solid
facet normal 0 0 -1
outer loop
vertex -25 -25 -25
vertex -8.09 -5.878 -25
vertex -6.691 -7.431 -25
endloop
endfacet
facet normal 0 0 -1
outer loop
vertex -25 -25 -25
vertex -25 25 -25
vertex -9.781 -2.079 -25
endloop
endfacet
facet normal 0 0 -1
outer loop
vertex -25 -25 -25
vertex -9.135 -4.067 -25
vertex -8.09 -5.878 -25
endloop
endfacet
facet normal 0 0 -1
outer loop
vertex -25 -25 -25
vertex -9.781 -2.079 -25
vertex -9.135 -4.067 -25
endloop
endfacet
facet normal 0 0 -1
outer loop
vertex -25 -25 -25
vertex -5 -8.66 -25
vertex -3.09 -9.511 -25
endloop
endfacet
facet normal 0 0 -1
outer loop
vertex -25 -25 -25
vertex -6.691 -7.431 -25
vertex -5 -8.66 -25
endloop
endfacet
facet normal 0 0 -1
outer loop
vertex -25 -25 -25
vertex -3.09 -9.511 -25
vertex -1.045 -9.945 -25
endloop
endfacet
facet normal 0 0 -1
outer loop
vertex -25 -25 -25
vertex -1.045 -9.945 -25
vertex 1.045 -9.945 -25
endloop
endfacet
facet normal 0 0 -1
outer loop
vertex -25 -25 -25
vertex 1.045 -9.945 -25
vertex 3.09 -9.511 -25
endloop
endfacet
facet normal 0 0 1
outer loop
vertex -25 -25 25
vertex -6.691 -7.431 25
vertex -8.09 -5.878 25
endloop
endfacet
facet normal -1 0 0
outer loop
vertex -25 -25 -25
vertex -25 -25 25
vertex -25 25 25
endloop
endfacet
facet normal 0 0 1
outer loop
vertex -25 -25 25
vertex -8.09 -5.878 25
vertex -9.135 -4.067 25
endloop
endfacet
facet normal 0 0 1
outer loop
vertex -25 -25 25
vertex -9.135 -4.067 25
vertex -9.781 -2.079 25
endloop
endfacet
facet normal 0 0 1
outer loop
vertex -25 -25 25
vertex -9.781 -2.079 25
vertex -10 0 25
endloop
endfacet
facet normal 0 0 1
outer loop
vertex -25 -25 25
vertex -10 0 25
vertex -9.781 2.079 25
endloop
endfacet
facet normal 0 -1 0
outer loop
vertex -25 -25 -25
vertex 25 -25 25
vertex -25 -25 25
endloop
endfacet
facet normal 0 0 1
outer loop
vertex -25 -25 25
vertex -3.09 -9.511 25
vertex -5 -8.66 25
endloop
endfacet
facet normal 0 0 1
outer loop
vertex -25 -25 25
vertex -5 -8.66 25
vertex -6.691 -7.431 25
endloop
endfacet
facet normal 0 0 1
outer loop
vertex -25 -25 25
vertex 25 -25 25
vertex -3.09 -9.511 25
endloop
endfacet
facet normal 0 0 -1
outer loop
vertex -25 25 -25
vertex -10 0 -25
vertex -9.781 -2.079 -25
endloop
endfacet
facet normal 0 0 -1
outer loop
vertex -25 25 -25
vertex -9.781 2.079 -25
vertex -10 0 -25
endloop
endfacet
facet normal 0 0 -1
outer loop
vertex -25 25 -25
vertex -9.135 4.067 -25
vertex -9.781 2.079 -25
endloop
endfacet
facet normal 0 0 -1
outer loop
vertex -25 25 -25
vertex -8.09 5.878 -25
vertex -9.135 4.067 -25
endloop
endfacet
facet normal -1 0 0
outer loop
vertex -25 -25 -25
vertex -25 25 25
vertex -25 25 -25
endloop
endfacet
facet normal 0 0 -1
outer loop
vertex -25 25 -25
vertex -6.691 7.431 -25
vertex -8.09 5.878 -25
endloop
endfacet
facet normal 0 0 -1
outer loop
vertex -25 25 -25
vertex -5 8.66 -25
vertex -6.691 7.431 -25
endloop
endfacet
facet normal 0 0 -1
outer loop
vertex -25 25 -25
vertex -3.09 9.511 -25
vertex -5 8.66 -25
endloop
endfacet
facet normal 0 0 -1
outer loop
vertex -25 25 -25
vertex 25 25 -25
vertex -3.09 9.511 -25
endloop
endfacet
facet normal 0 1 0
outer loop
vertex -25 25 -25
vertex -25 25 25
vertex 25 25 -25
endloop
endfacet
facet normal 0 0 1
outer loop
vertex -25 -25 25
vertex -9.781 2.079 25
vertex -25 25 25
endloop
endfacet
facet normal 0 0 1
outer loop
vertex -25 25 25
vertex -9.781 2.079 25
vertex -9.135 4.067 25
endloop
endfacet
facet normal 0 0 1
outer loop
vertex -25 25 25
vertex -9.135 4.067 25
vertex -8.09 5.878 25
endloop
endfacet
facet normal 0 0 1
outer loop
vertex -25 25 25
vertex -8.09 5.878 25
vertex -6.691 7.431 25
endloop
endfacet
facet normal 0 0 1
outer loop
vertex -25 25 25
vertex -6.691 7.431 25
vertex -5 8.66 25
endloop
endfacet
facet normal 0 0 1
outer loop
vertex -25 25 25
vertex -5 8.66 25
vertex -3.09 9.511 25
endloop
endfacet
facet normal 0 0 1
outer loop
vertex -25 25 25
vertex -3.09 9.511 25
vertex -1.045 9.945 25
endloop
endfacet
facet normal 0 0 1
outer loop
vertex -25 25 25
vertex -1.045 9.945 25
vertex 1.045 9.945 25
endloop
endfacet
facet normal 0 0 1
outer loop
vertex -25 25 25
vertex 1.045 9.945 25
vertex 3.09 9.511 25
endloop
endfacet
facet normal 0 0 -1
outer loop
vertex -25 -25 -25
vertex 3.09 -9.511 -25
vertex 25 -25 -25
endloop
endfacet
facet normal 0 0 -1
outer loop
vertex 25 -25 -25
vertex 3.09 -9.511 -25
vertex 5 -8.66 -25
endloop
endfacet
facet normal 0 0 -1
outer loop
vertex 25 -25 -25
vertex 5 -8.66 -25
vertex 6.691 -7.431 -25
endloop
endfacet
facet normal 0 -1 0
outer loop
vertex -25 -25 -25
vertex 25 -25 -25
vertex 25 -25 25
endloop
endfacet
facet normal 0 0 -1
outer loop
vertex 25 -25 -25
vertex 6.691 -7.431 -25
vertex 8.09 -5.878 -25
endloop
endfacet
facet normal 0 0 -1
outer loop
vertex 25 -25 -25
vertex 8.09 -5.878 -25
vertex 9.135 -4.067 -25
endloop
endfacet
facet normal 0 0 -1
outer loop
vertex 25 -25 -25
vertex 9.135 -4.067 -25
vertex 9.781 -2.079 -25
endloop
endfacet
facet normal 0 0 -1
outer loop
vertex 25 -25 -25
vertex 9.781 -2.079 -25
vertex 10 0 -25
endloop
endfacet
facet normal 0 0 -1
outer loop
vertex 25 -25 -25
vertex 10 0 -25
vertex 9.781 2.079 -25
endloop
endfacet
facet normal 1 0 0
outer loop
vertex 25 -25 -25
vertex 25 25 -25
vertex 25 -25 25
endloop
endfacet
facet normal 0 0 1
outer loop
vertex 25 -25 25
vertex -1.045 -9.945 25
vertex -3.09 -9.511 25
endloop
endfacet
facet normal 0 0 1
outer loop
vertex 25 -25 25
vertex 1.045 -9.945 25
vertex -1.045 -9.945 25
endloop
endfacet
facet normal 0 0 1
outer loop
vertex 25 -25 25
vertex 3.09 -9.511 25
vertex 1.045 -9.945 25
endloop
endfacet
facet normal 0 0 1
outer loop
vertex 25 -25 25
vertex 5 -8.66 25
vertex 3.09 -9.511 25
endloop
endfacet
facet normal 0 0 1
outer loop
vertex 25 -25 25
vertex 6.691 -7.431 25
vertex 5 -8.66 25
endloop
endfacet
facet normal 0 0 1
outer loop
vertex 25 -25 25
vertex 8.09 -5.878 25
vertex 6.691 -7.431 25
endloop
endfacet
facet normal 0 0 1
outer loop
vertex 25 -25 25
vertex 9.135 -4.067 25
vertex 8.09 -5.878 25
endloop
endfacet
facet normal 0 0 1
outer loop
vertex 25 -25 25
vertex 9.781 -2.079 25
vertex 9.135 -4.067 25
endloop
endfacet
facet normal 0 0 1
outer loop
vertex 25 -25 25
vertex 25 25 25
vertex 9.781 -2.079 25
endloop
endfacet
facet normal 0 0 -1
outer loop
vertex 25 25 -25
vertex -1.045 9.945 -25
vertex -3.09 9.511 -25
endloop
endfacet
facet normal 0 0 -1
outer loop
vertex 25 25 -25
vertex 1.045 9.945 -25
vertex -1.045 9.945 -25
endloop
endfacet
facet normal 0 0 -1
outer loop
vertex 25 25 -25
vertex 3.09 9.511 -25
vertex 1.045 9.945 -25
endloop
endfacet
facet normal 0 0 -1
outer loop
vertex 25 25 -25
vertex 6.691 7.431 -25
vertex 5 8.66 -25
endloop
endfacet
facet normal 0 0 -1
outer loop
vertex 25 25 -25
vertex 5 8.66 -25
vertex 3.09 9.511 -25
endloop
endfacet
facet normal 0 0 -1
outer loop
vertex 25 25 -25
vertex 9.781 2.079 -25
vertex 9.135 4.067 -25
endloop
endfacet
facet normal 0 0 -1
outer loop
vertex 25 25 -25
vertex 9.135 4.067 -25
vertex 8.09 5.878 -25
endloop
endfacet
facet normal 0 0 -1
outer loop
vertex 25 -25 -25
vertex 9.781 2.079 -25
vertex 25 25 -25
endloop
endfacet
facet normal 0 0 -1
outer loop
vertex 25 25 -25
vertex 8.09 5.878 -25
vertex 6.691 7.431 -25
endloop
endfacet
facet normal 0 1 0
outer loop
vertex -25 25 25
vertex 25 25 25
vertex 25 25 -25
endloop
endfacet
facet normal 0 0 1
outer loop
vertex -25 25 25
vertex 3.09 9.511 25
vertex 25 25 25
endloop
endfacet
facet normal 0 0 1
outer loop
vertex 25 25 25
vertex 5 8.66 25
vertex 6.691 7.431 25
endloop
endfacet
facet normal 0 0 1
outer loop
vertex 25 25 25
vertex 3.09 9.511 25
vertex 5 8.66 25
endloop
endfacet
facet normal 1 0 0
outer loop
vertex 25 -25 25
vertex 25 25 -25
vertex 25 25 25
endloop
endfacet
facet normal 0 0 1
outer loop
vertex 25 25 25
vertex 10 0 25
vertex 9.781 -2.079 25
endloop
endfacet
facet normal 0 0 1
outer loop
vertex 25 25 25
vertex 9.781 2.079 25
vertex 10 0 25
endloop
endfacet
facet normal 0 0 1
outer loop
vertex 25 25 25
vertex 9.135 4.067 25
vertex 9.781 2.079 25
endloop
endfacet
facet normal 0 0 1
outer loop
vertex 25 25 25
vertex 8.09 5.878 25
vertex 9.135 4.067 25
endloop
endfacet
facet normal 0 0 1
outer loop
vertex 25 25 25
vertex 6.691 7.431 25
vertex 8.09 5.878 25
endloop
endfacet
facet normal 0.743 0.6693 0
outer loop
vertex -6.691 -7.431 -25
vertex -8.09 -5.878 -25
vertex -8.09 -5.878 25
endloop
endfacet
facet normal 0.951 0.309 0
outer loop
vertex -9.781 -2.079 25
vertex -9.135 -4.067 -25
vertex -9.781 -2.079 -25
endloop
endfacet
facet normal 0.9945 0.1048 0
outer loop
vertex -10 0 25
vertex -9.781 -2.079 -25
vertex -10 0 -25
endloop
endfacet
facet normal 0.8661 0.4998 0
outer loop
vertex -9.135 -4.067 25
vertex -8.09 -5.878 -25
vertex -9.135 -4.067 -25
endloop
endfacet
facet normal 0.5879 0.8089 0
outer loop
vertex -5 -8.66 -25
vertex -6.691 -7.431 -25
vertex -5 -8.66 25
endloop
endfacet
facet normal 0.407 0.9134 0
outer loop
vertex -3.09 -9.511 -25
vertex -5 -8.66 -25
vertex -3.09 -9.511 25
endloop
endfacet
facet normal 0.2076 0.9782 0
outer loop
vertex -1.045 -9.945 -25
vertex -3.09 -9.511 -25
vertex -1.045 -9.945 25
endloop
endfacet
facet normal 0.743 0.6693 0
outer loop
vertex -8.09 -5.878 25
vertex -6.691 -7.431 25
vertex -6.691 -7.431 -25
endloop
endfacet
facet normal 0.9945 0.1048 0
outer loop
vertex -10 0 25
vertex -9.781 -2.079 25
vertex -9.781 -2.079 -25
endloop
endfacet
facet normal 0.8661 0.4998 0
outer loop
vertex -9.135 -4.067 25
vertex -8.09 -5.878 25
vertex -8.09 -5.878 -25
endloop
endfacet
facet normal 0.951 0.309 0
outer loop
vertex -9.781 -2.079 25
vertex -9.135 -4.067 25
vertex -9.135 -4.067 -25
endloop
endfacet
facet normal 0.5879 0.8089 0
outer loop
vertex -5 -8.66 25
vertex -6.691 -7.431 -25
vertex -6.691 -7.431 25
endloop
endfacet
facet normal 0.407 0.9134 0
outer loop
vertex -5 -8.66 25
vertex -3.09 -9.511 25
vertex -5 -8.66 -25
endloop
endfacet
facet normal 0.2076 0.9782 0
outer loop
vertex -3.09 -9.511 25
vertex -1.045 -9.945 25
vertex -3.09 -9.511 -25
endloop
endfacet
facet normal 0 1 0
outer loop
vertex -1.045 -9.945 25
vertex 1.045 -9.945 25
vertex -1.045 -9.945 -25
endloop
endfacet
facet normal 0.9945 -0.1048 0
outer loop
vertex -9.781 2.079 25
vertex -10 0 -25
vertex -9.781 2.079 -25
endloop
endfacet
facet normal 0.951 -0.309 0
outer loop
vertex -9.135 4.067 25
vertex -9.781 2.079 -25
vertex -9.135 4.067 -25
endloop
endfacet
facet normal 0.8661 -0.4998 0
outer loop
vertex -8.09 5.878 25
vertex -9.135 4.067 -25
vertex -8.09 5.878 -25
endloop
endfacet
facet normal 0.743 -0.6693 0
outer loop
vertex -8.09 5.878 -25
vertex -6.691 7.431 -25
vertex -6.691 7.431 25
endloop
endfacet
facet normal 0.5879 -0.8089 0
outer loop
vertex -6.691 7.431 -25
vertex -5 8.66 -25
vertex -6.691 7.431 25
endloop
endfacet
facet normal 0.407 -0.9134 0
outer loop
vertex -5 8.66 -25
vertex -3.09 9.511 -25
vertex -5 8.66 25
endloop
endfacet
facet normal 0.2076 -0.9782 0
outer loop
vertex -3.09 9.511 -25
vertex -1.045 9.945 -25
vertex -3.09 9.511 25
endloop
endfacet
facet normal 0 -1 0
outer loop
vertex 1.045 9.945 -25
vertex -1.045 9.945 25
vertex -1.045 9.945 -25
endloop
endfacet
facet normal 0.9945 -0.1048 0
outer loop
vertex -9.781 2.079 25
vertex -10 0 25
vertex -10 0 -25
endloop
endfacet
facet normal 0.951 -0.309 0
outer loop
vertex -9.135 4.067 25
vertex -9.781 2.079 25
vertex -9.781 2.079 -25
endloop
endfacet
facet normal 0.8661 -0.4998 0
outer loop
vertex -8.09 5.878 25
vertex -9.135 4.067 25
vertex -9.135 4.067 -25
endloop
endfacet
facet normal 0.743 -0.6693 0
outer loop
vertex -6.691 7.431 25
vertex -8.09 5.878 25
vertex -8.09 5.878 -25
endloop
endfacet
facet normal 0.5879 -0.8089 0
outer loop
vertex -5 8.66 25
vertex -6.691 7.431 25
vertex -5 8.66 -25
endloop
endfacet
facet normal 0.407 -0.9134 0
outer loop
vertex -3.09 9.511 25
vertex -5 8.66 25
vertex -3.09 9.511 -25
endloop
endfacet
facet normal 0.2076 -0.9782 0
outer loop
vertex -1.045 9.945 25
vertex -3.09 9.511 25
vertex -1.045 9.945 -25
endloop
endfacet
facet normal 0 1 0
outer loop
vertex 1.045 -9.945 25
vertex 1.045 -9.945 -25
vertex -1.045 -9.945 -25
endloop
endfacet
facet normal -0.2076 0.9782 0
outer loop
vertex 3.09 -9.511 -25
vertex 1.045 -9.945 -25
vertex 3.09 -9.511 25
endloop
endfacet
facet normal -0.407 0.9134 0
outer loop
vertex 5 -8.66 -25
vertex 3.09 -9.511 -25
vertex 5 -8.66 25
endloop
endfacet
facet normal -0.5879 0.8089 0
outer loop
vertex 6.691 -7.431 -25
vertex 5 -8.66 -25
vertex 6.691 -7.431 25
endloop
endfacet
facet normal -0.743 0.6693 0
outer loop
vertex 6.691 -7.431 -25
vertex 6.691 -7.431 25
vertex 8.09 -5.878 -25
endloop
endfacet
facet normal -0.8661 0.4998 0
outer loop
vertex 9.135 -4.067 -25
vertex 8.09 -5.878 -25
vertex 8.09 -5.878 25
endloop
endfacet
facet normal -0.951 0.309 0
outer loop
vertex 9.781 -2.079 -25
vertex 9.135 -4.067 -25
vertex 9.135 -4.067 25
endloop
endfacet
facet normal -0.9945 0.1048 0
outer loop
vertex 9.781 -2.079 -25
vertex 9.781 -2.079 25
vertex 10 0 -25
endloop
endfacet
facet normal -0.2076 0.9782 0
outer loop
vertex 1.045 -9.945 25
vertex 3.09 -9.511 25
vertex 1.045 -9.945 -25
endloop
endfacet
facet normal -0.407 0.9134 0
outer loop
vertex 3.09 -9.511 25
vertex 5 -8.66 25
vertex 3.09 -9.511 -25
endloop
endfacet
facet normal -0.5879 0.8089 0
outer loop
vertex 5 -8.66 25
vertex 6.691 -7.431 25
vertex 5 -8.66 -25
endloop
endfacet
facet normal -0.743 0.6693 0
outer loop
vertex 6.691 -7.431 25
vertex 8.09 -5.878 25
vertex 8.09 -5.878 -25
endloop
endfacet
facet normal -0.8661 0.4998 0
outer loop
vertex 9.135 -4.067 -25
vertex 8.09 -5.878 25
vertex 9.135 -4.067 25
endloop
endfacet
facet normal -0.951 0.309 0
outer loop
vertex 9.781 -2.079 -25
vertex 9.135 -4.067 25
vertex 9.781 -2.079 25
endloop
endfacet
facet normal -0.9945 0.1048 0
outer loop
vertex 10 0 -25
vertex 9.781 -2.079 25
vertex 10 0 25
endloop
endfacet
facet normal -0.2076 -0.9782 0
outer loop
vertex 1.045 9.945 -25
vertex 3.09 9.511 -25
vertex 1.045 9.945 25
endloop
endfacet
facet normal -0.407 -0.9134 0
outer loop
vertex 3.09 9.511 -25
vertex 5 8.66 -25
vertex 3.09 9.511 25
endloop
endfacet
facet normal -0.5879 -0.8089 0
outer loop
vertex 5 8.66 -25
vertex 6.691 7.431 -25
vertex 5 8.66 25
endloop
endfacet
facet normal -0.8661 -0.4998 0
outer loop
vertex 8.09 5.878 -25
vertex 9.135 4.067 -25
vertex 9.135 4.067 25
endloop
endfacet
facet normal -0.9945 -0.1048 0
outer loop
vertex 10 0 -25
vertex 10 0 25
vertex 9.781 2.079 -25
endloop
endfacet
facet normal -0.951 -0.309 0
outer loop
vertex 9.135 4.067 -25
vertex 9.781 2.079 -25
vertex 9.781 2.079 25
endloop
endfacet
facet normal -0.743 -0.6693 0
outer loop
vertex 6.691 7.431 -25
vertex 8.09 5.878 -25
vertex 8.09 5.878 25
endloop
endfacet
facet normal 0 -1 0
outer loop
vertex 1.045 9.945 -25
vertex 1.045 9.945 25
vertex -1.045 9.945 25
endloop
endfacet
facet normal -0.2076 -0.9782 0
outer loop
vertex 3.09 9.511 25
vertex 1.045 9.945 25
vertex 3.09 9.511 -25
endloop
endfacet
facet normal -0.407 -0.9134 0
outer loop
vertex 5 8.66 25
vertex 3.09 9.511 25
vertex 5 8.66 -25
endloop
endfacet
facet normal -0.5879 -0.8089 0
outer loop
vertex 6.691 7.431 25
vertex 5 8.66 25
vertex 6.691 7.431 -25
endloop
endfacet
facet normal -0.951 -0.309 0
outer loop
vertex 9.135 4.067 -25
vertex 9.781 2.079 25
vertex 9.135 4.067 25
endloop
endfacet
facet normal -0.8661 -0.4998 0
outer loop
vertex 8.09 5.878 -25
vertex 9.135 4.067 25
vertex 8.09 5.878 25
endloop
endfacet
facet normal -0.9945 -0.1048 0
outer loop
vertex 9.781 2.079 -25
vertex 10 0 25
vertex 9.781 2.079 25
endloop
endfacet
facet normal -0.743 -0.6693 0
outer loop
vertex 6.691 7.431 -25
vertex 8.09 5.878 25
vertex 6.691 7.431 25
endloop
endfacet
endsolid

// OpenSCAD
difference() {
  cube(50, center=true);
  cylinder(d=20, h=50, center=true);
}
